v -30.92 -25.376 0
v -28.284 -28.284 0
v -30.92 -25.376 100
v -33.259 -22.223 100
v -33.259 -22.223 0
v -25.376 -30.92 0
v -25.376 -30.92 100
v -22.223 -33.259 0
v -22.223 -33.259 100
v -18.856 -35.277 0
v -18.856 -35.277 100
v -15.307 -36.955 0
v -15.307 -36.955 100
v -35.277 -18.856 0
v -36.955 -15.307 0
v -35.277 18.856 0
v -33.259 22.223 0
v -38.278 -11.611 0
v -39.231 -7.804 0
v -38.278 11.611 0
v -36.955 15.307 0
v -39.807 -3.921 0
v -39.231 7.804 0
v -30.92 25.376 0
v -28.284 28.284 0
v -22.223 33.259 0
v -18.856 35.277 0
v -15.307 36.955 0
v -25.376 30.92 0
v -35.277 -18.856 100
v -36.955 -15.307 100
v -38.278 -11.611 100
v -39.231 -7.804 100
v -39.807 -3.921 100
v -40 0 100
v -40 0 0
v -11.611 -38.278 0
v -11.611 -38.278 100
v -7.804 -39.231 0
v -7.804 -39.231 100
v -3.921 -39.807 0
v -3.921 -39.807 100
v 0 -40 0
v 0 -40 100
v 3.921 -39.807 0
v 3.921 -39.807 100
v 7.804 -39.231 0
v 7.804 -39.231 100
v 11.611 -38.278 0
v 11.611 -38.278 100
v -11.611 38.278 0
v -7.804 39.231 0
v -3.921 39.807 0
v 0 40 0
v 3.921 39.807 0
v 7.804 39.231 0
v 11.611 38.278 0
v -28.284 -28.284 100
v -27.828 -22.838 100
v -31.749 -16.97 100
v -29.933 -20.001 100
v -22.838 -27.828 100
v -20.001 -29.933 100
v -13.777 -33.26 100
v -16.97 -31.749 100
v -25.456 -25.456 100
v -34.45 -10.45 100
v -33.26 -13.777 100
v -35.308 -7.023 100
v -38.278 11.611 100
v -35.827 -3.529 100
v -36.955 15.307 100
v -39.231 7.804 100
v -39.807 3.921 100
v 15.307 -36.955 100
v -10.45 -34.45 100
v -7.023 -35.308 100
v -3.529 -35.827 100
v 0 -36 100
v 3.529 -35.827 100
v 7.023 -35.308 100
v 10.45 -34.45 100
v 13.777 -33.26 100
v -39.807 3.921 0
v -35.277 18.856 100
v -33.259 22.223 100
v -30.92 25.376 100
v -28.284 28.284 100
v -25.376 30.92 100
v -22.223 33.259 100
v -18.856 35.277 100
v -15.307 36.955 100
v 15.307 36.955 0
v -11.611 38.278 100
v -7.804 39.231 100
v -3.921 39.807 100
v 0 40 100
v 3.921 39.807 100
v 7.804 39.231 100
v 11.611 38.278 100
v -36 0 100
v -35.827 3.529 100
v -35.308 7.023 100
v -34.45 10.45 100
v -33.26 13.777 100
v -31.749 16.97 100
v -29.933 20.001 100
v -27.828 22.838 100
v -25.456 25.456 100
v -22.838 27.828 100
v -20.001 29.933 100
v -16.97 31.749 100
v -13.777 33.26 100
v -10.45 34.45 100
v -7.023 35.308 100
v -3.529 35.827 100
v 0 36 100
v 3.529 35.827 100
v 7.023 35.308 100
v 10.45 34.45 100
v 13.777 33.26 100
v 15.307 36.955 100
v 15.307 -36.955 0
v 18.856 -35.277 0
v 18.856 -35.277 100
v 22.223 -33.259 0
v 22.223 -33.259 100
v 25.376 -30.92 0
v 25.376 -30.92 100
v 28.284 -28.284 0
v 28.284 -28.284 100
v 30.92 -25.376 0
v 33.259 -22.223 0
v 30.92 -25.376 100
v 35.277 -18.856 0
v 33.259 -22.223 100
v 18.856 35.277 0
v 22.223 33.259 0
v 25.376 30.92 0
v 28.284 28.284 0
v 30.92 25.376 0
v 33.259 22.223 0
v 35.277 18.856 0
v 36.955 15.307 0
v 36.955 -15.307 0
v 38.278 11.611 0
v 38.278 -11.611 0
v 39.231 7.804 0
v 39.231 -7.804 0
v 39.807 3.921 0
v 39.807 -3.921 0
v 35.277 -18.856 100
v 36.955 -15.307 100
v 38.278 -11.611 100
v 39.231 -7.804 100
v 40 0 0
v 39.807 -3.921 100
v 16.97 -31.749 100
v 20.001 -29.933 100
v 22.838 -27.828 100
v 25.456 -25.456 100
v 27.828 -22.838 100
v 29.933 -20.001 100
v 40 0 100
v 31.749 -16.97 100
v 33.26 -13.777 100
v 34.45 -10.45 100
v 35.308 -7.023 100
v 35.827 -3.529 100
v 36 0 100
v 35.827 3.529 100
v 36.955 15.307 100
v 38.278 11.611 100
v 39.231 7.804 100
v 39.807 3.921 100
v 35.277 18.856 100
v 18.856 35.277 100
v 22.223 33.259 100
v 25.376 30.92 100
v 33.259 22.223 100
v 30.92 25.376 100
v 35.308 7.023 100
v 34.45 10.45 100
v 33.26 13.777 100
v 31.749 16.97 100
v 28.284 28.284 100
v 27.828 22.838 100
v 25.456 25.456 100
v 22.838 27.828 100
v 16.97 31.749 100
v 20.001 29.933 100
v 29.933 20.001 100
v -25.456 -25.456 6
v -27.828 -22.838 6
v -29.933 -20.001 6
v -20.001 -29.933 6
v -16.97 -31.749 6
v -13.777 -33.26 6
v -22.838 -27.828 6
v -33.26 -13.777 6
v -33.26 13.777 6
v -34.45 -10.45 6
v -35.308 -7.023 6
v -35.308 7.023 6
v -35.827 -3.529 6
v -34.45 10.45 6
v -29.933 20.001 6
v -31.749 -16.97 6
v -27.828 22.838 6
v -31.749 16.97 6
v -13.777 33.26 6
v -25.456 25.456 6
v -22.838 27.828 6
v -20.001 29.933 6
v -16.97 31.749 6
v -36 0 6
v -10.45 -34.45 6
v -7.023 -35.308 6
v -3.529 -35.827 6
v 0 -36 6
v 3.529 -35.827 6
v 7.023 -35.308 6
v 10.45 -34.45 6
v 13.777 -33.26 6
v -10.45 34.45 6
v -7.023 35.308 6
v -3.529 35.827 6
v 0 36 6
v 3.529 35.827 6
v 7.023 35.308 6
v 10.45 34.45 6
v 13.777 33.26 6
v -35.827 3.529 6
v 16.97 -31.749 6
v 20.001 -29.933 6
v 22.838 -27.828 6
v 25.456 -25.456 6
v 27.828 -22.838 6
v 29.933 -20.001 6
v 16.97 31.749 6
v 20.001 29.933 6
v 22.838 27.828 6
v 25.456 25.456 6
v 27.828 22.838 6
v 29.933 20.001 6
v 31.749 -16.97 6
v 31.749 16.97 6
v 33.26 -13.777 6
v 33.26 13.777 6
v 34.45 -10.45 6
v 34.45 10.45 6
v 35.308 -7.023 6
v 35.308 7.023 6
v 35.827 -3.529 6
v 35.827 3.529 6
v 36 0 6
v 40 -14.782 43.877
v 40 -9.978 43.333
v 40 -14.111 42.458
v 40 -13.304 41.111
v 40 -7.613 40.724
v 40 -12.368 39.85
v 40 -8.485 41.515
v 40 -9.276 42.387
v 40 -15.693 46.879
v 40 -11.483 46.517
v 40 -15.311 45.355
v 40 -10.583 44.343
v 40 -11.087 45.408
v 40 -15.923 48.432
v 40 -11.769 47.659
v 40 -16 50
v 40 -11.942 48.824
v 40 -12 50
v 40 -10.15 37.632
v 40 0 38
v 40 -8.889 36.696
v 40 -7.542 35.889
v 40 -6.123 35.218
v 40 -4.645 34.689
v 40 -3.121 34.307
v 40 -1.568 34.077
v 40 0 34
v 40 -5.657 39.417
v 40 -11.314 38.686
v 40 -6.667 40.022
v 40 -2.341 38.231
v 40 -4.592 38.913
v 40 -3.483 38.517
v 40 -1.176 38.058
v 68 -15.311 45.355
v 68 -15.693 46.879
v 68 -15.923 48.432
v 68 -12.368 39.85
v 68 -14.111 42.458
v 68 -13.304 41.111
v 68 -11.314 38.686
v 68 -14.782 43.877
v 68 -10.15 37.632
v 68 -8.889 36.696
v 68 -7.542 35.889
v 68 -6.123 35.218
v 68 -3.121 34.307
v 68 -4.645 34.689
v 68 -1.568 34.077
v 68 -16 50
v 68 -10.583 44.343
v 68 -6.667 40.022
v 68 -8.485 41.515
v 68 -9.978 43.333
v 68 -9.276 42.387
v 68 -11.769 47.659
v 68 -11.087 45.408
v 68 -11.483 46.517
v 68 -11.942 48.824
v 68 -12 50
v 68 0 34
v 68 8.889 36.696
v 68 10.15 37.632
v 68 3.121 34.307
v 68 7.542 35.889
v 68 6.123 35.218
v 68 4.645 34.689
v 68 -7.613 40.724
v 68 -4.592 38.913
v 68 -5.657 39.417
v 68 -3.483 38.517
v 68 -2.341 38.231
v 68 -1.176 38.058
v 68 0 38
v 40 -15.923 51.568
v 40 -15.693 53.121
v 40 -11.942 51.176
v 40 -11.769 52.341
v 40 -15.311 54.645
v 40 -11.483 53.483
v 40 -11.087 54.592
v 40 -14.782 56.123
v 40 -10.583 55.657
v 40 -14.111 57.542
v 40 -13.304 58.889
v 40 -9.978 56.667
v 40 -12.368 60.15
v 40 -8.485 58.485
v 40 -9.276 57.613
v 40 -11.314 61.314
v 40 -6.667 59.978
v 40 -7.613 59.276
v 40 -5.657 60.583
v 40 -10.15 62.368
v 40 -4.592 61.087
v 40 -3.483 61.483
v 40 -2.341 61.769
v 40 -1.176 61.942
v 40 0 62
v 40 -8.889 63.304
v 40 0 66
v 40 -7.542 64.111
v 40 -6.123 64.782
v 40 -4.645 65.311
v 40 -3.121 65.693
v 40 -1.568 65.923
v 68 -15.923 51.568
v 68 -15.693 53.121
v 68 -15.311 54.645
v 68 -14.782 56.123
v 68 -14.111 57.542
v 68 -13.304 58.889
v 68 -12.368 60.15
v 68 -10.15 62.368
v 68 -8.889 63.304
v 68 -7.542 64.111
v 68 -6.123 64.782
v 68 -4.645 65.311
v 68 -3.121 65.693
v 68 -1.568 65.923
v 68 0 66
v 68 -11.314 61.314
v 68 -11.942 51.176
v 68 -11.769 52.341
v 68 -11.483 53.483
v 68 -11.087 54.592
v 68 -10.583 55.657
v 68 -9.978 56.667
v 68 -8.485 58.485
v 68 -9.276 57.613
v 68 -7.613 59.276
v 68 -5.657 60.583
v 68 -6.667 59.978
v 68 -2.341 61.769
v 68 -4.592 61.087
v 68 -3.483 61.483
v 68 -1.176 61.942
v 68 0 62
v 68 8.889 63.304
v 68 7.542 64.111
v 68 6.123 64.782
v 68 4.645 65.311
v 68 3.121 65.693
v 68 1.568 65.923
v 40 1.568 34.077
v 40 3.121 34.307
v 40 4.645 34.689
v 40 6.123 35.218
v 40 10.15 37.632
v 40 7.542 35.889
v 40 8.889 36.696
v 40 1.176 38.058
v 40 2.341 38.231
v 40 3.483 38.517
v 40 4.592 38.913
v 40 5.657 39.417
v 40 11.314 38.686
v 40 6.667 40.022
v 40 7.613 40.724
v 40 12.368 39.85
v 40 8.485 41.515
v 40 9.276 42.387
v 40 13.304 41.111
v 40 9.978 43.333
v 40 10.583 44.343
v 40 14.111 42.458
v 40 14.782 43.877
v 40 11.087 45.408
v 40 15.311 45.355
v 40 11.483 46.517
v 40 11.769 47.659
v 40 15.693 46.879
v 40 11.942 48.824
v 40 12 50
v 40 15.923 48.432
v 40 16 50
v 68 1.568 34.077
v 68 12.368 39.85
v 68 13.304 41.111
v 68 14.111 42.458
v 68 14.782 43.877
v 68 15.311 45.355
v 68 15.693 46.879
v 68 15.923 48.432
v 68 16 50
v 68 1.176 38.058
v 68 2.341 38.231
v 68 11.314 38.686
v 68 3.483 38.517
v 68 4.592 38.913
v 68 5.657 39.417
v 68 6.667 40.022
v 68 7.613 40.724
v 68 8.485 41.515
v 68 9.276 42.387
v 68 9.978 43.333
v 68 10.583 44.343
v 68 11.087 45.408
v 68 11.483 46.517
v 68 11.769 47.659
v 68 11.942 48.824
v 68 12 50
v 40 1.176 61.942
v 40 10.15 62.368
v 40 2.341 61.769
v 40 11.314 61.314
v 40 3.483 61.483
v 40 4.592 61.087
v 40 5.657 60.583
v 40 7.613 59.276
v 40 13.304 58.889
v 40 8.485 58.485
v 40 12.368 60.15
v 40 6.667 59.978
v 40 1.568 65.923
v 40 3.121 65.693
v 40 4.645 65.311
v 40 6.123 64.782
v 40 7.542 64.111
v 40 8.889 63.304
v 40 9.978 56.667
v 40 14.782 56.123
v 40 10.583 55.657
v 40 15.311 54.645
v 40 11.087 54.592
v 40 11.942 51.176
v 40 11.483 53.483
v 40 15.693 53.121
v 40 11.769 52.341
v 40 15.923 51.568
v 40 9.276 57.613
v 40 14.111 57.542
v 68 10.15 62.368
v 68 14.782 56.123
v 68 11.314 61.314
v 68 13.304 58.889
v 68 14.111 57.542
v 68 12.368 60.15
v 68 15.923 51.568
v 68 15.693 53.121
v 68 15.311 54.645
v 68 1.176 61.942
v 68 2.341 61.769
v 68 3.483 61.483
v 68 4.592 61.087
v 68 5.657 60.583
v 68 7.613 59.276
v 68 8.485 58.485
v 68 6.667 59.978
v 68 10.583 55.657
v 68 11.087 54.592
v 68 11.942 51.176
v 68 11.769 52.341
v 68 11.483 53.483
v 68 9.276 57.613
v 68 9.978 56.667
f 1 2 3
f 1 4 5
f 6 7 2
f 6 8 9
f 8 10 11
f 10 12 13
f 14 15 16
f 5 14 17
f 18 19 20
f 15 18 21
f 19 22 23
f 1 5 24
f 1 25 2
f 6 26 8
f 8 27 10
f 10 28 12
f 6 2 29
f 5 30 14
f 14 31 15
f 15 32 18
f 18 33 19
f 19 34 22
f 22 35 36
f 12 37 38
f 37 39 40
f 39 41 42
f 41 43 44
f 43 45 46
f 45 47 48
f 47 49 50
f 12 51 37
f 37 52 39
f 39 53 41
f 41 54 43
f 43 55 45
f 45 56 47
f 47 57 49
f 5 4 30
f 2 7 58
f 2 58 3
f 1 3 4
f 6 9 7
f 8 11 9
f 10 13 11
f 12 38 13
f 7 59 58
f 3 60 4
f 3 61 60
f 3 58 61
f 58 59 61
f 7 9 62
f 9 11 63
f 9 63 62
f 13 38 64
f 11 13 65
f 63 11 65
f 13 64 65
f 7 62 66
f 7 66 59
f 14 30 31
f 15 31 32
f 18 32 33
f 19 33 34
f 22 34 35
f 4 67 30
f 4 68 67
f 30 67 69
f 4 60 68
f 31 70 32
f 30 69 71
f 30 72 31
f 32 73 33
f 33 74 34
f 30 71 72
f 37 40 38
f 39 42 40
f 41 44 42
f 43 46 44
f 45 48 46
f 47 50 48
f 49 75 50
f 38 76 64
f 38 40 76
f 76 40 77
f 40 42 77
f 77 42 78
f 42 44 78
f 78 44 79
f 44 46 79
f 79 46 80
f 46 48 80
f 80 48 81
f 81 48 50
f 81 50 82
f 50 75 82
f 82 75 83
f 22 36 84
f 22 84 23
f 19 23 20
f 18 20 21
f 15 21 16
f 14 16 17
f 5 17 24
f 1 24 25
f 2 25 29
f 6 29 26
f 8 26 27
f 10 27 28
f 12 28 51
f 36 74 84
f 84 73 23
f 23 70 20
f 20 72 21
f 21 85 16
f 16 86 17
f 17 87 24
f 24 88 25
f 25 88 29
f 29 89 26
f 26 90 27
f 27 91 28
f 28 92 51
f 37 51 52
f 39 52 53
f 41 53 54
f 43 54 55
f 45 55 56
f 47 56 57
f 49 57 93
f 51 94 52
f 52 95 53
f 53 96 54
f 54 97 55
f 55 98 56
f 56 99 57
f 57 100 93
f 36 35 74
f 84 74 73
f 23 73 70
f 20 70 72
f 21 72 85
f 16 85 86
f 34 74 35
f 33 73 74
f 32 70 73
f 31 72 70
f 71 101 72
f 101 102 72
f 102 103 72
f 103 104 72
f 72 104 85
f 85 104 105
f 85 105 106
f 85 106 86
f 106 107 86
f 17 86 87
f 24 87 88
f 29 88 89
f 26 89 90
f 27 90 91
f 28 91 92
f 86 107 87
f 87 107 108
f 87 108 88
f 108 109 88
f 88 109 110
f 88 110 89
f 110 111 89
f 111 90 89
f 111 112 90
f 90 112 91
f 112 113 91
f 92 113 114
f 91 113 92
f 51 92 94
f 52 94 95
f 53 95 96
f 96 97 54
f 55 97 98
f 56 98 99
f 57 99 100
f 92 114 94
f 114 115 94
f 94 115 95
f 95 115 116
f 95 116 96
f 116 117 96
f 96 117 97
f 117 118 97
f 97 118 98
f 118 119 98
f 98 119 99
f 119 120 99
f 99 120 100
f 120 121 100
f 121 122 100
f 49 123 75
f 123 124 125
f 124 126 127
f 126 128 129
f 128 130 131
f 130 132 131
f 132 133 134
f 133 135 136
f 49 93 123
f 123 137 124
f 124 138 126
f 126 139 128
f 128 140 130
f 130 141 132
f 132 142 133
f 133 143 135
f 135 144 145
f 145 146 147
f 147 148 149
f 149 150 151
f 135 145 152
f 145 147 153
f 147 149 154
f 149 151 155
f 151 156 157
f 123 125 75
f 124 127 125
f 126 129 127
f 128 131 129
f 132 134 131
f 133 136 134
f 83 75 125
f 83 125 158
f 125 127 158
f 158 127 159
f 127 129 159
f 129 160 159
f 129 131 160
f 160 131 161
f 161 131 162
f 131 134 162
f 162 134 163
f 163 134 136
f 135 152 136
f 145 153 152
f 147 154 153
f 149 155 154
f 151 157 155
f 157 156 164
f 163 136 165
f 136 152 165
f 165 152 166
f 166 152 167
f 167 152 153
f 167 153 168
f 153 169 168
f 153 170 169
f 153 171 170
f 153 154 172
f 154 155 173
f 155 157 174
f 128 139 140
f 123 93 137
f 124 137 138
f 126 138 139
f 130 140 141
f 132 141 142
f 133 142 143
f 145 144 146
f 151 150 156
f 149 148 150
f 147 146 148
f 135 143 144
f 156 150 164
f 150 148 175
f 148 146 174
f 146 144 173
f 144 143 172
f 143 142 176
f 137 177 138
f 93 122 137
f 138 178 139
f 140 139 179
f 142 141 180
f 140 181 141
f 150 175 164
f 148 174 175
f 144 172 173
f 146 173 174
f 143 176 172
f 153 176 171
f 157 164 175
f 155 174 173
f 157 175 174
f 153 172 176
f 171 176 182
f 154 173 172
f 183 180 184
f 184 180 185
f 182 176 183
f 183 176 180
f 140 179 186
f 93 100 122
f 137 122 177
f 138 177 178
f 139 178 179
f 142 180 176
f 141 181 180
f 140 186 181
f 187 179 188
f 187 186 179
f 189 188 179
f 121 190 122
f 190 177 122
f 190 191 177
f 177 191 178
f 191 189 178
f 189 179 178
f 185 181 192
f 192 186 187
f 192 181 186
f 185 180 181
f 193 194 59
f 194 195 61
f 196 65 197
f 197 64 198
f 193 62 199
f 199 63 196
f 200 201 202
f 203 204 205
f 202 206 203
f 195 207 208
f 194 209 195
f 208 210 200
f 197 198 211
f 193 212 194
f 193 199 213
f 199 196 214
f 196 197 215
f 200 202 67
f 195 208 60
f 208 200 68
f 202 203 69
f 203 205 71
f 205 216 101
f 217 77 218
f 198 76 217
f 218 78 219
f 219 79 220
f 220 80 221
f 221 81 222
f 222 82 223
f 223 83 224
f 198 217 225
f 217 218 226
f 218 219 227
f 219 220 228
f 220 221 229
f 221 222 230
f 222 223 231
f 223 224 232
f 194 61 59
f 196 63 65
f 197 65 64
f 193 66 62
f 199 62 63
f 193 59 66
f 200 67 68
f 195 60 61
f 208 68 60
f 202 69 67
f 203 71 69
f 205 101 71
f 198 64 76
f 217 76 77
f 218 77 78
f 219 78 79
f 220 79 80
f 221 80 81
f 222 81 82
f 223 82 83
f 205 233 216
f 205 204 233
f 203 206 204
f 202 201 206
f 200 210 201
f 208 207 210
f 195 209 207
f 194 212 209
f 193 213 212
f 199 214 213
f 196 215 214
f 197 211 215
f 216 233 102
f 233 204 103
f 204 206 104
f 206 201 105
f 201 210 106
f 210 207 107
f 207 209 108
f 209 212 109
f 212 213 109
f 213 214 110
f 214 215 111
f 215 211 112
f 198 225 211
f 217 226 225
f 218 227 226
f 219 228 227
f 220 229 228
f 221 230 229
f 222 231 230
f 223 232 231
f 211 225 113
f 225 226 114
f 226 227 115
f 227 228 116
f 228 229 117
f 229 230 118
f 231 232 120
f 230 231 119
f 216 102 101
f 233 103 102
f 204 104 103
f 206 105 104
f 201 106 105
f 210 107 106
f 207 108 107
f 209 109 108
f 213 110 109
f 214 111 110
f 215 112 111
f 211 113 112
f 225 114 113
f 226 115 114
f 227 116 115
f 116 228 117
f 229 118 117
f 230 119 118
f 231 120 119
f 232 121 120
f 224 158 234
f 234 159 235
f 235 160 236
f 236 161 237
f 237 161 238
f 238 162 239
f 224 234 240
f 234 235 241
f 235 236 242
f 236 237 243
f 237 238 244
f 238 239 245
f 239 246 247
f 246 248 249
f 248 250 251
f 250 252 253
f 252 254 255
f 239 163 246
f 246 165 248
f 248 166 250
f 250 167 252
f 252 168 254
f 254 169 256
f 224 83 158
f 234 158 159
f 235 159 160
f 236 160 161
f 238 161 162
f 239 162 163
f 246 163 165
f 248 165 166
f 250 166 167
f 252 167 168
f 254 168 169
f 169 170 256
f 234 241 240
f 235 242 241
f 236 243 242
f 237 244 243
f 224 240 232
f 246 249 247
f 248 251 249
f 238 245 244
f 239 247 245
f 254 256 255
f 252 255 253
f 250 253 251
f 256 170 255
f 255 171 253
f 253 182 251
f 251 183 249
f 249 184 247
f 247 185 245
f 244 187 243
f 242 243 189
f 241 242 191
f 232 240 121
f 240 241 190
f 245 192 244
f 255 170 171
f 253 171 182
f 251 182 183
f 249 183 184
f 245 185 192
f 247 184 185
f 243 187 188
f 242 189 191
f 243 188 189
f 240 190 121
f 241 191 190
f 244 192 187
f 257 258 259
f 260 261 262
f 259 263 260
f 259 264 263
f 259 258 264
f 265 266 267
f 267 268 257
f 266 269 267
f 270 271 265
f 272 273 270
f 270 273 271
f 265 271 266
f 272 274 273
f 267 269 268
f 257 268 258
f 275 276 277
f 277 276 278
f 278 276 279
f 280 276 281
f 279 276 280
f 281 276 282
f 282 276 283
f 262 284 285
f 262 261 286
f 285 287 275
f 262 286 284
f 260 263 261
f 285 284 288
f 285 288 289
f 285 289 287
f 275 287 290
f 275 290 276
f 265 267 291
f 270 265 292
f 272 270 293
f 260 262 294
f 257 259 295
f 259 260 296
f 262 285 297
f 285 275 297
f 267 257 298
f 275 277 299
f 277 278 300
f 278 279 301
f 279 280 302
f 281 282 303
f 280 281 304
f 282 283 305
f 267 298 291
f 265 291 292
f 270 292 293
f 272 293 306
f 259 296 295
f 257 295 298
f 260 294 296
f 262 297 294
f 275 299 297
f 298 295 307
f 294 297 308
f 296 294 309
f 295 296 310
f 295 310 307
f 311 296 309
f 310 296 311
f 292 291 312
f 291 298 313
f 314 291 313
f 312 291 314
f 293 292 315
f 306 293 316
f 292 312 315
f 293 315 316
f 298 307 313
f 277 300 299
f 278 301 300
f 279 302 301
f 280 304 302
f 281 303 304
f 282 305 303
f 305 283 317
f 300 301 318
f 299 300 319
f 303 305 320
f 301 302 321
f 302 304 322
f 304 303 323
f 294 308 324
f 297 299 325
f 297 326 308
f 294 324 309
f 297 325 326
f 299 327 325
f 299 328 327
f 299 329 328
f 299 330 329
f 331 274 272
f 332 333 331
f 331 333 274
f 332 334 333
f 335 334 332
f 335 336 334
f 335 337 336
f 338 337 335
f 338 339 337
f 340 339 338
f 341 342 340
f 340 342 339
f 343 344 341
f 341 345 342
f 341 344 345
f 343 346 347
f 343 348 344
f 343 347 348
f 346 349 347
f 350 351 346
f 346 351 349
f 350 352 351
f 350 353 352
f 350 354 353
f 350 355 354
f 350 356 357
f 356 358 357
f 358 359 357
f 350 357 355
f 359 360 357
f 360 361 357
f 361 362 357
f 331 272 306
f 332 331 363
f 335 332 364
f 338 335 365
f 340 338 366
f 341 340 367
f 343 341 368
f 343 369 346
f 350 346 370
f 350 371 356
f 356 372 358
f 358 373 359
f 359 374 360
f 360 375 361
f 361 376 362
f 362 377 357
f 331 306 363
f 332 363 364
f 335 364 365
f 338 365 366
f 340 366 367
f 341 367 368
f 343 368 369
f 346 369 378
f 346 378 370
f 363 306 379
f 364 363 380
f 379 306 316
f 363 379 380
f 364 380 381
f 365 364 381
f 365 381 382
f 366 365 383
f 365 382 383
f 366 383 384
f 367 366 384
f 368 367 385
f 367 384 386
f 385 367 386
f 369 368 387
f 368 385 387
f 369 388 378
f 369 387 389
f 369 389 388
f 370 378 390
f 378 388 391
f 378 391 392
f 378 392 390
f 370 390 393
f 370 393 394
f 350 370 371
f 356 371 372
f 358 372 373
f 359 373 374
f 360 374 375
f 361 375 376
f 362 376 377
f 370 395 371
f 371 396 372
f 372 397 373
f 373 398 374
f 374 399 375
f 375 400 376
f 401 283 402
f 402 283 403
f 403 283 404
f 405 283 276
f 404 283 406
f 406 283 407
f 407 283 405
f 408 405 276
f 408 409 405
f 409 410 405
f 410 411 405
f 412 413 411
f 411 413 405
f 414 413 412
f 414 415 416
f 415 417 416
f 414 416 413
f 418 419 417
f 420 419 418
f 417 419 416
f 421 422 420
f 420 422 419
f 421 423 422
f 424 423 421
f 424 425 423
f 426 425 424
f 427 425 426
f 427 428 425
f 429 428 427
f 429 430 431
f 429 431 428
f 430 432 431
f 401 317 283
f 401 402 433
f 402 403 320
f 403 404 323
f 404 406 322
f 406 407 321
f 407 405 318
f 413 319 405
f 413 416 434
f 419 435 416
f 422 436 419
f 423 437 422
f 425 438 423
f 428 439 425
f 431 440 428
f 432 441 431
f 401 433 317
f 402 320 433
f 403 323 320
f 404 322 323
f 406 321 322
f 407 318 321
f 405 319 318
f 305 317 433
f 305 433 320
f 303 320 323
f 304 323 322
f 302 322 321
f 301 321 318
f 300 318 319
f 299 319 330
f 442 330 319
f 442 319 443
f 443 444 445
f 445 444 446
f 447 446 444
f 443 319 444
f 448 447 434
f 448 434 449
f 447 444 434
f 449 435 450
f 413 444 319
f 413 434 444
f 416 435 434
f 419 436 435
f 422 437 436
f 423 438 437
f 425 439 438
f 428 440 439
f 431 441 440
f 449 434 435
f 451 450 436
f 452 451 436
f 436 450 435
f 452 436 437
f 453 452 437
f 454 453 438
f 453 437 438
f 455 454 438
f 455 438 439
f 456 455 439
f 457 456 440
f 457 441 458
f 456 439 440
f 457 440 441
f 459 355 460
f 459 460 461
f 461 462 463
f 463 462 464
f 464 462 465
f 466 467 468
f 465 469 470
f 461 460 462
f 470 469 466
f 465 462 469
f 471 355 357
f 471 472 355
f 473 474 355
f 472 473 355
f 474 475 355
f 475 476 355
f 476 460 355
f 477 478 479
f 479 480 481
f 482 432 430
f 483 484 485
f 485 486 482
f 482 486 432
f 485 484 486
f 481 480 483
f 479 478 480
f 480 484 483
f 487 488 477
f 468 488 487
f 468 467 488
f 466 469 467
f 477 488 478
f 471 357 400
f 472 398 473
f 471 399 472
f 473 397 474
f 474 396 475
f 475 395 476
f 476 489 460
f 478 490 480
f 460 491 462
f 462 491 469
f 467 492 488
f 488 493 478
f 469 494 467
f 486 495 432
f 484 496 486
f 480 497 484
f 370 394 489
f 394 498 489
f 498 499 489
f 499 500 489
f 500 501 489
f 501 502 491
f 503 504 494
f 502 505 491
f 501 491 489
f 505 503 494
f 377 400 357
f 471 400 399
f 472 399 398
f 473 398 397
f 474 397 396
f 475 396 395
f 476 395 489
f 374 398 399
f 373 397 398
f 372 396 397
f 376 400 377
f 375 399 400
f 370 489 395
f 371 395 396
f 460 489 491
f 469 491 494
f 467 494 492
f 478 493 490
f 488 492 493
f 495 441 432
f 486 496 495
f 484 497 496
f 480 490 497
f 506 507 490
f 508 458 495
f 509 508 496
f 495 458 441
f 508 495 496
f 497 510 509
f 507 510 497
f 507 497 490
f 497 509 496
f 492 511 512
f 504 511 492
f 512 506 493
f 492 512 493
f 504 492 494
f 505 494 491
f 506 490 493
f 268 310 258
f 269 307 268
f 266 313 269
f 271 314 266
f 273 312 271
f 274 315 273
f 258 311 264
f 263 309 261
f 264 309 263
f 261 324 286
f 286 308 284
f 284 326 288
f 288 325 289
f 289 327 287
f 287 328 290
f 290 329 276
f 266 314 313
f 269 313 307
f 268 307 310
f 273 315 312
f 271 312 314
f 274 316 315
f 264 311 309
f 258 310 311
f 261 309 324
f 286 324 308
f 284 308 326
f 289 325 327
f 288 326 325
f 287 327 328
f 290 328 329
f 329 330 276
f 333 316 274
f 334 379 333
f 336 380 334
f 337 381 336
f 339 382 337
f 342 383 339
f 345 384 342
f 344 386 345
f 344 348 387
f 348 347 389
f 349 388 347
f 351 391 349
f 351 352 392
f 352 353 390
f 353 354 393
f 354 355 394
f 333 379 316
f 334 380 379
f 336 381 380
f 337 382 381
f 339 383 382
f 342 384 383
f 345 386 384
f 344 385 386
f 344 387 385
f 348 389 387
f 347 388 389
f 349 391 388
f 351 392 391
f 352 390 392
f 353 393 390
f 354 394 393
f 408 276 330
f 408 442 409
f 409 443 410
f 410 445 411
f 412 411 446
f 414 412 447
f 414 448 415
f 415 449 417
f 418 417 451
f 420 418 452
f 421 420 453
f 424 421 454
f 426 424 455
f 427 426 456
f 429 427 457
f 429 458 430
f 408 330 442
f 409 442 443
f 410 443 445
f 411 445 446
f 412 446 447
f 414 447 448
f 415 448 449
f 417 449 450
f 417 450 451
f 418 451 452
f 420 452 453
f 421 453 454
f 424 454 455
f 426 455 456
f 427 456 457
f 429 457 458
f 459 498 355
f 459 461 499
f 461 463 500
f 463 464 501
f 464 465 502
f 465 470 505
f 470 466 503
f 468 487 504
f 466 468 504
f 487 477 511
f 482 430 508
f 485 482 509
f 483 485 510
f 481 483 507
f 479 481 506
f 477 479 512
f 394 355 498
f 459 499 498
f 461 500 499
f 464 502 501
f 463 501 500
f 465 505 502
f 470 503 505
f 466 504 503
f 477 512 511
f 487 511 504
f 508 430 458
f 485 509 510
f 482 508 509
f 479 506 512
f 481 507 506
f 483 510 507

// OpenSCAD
// マグカップのパラメータ
outer_diameter = 80;
height = 100;
wall_thickness = 4;
bottom_thickness = 6;
handle_radius = 12; // ハンドルのリングの半径

// 計算される値
inner_diameter = outer_diameter - (wall_thickness * 2);
inner_height = height - bottom_thickness;

// カップ本体
difference() {
    // 外側の円筒
    cylinder(h = height, r = outer_diameter / 2, $fn = 64);

    // 内側をくり抜く円筒
    translate([0, 0, bottom_thickness]) {
        cylinder(h = inner_height, r = inner_diameter / 2, $fn = 64);
    }
}

// 取手
translate([outer_diameter / 2, 0, height / 2]) { // カップの側面に移動し、中心高さに配置
    rotate([0, 90, 0]) { // 円筒の軸をX方向に回転
        difference() {
            // 外側のリング部分
            cylinder(h = wall_thickness + handle_radius * 2, r = handle_radius + wall_thickness, $fn = 64);
            // 内側をくり抜く部分
            cylinder(h = wall_thickness + handle_radius * 2, r = handle_radius, $fn = 64);
        }
    }
}
